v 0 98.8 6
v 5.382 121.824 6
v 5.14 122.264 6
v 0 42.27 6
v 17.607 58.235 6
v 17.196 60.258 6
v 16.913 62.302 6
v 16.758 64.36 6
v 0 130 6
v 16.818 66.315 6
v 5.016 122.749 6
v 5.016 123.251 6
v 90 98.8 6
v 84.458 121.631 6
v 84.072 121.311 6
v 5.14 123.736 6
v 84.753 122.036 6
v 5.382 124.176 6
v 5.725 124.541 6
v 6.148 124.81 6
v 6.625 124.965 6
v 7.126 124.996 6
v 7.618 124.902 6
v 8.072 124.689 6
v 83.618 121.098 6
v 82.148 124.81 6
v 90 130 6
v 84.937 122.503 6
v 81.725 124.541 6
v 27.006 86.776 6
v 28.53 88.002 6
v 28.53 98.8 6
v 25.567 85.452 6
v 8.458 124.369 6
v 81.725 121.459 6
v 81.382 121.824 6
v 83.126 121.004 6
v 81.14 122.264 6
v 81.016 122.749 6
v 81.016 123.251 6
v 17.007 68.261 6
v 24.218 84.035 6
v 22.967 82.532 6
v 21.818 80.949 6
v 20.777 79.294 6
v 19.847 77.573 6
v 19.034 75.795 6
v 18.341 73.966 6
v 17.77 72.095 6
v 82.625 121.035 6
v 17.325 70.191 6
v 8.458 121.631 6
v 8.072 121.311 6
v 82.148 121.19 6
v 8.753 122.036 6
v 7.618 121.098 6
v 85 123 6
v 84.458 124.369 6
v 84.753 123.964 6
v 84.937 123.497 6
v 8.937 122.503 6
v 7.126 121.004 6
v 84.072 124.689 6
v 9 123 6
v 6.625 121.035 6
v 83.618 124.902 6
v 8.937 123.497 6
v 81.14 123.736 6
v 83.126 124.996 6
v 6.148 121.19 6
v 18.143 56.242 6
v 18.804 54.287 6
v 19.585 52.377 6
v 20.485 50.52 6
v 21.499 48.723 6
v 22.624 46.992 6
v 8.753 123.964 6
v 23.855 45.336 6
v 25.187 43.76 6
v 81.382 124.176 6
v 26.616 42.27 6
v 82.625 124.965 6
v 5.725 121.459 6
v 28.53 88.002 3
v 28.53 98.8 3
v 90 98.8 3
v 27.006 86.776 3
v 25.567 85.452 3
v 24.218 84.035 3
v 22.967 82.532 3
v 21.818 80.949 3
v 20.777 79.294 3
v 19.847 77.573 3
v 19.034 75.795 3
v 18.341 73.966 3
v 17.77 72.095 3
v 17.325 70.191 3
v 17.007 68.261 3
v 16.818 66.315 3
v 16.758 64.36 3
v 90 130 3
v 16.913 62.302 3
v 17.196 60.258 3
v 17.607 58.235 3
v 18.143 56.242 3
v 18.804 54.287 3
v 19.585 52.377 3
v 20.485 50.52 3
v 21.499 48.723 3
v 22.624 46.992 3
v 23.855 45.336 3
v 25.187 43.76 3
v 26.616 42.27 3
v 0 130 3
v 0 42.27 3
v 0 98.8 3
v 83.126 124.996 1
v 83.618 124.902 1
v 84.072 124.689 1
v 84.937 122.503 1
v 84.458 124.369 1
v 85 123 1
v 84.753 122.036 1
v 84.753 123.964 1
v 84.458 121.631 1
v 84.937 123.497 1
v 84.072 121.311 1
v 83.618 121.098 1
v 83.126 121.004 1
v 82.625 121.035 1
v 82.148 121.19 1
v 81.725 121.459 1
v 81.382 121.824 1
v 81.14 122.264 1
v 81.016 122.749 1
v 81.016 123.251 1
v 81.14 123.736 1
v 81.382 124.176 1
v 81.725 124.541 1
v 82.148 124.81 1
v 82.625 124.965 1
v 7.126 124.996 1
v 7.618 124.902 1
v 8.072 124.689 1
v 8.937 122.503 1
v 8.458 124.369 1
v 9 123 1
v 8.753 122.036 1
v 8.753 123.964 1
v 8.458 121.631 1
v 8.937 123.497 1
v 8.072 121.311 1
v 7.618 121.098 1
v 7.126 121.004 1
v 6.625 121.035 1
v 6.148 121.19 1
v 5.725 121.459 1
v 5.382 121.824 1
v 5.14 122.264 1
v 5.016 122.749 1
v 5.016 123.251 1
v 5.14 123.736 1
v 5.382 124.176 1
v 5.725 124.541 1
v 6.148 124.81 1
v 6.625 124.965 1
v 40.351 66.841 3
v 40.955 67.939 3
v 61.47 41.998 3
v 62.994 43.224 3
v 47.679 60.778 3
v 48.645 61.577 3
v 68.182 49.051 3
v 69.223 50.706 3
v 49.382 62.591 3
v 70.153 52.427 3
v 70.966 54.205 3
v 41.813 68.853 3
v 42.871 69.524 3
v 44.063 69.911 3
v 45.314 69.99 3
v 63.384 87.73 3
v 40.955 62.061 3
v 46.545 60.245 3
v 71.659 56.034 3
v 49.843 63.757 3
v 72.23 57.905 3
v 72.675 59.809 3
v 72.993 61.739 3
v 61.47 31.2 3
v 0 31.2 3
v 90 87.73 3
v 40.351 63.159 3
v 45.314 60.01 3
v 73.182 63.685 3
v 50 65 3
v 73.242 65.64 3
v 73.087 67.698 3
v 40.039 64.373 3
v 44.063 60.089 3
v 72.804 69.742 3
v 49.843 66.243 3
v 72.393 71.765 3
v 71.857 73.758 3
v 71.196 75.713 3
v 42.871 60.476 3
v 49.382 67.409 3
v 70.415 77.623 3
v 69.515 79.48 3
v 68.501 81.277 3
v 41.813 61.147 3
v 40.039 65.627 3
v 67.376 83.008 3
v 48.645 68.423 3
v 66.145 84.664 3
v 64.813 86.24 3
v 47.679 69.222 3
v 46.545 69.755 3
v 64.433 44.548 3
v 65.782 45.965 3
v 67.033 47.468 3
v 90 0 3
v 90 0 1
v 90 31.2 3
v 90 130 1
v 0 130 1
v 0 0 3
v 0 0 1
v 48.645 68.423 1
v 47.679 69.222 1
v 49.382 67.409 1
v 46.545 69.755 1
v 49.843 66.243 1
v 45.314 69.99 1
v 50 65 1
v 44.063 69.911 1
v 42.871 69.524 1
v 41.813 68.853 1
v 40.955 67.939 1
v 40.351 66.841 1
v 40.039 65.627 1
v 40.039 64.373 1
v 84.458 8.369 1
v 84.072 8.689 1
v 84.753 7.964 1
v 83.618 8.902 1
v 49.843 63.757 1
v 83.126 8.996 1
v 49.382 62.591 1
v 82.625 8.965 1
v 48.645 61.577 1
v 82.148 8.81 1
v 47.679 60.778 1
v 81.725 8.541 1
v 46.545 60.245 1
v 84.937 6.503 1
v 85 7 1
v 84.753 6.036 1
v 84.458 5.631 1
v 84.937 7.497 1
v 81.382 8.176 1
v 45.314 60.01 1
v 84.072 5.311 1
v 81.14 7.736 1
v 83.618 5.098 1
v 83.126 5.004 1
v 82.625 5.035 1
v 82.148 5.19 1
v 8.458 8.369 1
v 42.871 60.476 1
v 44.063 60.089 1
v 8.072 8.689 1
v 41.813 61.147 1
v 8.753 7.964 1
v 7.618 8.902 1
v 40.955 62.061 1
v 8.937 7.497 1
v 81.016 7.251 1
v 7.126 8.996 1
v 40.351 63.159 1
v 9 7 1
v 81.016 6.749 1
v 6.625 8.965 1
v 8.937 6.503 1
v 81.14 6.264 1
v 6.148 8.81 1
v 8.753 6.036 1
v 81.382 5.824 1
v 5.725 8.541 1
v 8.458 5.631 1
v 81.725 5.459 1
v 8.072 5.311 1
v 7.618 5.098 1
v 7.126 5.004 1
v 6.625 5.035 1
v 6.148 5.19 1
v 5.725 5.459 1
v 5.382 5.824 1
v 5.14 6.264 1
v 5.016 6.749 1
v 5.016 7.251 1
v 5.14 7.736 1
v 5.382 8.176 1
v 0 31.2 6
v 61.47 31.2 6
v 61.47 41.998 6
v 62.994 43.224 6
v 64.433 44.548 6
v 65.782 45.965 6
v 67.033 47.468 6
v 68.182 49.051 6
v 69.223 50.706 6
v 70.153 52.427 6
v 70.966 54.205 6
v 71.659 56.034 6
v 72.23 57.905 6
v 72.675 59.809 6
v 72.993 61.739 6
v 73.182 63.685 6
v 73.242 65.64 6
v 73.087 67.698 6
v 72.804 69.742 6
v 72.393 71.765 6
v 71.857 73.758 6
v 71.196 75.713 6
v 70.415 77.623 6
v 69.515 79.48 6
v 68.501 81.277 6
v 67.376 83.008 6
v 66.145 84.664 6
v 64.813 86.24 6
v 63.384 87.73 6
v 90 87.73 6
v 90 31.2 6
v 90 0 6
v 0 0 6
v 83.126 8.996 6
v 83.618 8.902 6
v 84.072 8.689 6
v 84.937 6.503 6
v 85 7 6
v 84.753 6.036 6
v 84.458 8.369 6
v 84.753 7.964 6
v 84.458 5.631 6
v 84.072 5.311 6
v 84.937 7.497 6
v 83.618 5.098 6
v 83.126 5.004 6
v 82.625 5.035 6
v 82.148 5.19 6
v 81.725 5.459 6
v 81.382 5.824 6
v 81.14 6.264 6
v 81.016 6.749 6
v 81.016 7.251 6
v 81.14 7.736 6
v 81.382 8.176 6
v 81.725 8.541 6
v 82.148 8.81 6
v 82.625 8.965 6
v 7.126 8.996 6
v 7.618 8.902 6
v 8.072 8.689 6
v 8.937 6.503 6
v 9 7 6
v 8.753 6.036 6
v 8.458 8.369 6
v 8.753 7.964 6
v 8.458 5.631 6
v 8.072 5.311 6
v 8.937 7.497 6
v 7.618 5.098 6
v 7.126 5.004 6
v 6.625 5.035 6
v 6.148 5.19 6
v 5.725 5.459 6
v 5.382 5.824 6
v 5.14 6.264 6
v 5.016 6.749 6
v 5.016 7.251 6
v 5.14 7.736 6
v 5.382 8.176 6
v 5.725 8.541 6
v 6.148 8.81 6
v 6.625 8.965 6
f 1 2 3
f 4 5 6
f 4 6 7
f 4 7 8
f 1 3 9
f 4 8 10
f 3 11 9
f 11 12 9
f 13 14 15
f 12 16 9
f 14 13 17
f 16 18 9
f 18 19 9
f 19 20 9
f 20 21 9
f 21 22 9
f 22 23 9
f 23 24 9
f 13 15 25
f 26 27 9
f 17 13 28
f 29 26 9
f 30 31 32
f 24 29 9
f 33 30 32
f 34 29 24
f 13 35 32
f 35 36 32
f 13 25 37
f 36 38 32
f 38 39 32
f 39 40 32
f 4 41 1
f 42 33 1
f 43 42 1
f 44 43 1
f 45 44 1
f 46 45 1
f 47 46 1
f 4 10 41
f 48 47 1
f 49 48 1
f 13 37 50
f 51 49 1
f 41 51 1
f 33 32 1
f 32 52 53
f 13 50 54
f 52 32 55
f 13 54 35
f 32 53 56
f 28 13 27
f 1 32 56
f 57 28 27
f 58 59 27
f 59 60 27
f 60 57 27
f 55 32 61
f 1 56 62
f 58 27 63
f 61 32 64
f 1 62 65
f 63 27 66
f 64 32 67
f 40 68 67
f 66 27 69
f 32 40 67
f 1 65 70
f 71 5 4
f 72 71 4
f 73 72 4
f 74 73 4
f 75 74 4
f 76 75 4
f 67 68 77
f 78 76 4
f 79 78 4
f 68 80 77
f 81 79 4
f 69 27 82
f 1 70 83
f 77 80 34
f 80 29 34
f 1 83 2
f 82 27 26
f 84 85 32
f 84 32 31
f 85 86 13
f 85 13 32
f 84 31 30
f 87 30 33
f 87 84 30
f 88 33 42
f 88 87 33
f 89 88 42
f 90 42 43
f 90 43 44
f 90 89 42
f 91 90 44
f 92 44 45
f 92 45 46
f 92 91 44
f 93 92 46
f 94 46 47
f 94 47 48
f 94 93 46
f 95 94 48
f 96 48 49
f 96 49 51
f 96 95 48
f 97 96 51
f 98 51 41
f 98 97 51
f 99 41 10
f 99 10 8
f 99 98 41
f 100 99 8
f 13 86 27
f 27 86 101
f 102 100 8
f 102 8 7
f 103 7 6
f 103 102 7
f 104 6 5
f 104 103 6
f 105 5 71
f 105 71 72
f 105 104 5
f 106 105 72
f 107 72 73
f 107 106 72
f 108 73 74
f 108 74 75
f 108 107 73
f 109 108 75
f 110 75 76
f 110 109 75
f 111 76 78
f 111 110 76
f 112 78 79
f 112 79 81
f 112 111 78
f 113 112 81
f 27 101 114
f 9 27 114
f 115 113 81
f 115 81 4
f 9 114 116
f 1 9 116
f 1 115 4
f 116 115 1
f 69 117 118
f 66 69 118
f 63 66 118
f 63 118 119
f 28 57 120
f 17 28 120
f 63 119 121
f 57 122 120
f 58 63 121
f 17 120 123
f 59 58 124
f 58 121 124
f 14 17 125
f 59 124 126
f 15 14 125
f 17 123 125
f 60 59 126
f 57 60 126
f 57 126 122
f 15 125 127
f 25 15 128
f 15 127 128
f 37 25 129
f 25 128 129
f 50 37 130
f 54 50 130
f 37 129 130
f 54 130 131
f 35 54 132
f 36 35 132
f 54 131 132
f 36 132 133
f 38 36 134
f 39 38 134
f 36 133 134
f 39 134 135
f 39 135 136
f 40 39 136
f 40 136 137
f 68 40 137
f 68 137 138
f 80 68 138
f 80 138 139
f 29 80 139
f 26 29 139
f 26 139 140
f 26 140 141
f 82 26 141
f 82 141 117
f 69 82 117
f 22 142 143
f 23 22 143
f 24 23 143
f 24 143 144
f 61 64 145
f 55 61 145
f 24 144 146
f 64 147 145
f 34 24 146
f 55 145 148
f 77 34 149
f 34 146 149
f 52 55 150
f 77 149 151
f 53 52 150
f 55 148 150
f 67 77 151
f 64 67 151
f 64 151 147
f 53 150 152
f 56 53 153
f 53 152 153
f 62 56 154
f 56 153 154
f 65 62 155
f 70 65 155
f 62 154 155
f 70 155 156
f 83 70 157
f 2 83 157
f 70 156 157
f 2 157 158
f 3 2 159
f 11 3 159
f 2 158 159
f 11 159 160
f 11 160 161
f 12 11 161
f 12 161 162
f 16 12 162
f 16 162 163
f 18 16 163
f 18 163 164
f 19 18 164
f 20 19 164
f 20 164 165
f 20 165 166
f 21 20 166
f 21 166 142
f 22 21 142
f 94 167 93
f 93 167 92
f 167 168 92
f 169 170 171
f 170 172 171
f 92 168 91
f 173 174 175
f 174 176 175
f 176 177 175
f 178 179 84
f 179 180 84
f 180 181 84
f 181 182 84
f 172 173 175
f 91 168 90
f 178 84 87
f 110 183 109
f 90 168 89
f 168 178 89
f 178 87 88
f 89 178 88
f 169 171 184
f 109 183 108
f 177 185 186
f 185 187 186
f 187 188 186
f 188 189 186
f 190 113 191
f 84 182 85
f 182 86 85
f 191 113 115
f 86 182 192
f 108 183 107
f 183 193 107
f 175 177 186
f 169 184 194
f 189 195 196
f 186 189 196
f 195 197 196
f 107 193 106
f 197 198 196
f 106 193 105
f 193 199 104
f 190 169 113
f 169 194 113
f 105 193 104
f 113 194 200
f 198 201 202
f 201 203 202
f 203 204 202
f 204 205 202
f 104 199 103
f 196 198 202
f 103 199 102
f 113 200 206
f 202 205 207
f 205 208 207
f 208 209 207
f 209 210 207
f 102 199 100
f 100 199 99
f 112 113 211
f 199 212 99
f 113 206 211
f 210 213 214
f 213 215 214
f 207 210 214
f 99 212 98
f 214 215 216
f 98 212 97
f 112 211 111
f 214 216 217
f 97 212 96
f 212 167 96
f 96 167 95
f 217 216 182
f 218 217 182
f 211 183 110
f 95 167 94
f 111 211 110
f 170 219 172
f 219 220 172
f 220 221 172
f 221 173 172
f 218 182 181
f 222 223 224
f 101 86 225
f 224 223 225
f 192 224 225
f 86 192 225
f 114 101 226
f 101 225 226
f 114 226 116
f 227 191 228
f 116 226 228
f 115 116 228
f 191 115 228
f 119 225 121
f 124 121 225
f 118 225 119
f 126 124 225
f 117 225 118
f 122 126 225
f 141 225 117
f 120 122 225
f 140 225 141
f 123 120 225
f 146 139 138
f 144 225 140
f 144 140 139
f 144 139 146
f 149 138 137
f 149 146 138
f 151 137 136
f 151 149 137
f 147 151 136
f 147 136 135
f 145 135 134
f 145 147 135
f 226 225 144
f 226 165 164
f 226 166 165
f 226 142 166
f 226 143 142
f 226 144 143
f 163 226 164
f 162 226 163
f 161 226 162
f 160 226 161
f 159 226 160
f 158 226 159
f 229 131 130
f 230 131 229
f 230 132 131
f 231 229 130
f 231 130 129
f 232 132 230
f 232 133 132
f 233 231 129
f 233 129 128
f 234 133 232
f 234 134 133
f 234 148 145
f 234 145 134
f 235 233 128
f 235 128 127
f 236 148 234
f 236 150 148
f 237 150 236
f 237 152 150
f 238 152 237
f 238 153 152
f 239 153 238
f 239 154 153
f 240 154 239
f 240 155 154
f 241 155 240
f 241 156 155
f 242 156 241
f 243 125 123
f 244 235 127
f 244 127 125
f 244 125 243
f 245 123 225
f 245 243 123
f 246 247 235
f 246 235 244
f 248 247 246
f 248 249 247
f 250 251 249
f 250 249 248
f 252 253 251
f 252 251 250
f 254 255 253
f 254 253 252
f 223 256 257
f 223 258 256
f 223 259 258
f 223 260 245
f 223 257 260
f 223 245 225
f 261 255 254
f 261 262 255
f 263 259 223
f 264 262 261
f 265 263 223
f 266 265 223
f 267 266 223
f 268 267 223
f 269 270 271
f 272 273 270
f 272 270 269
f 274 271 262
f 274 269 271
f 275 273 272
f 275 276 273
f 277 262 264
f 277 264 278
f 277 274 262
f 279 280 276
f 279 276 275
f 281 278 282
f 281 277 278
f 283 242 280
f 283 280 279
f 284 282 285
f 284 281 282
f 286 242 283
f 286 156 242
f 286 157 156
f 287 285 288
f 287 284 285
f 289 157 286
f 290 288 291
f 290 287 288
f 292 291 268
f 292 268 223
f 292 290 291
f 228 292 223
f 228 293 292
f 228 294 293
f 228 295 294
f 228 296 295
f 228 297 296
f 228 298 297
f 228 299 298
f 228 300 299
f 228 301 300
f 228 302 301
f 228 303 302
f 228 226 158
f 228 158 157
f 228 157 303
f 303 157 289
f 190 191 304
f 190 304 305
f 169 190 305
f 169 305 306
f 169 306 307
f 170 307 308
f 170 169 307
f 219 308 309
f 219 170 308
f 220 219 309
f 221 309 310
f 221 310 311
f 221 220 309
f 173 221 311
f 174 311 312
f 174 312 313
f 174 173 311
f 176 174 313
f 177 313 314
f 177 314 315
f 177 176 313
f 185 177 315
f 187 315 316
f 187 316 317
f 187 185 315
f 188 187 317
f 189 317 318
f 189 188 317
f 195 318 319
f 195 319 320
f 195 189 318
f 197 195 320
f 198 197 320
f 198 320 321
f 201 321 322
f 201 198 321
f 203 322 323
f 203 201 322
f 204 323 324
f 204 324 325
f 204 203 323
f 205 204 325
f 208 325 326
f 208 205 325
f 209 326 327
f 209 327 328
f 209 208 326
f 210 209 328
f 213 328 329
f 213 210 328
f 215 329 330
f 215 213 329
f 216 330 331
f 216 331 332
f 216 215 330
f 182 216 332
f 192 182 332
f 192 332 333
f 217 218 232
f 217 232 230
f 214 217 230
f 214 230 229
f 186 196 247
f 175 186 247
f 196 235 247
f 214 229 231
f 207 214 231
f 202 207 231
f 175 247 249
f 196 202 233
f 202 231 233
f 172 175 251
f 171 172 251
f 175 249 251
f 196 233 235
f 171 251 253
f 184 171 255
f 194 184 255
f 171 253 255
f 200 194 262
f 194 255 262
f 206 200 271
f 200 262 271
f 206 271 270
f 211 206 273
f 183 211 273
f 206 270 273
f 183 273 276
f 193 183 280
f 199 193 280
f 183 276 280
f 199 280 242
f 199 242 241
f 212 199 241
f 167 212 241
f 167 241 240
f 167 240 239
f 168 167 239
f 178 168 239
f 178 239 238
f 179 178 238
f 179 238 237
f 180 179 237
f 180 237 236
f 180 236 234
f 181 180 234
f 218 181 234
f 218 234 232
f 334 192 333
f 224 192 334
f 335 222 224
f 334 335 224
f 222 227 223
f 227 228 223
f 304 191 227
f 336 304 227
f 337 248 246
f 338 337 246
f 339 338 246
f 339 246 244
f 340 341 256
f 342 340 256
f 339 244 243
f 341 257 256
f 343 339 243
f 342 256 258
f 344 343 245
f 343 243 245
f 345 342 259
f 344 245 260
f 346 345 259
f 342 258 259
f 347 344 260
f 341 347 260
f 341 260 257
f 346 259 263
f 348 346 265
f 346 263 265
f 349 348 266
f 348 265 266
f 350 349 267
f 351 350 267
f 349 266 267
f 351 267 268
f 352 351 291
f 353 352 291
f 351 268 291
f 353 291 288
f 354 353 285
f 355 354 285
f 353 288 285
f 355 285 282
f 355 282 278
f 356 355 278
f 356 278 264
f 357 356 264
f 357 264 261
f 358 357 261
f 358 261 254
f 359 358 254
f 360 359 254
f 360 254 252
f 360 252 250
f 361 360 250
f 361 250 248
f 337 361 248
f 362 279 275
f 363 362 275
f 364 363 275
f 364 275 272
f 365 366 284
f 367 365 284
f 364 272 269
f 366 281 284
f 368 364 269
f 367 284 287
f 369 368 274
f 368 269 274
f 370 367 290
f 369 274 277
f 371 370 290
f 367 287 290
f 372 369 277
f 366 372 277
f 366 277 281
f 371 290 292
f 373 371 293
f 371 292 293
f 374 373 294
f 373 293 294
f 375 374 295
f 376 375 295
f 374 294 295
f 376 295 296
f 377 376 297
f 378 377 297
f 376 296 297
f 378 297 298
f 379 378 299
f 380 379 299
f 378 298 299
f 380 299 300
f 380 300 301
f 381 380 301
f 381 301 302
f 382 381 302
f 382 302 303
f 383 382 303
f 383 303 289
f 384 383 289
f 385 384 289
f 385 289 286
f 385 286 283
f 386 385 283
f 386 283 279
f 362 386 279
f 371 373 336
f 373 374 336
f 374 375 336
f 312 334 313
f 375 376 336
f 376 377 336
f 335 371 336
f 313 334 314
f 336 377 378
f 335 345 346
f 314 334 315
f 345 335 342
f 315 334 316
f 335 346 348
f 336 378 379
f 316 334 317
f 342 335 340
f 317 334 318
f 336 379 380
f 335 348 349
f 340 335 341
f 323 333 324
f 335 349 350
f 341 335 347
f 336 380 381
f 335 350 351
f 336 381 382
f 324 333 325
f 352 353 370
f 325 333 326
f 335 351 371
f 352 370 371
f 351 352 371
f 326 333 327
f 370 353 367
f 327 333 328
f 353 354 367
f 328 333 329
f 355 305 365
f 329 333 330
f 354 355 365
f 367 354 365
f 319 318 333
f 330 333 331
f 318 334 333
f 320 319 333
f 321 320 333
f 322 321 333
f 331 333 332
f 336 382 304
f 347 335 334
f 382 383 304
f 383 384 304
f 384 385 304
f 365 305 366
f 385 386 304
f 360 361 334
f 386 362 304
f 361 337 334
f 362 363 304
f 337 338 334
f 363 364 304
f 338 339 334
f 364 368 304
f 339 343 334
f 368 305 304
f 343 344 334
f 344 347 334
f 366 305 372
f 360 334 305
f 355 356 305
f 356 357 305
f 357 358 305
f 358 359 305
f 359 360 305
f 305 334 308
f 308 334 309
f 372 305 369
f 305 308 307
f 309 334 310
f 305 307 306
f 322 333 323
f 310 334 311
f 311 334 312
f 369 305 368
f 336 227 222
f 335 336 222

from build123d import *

# Parameters (mm, degrees)
SKETCH_W        = 90
SKETCH_H        = 130
PAD_DEPTH       = 3
PAD007_DEPTH    = 3
PAD006_DEPTH    = 3
SKETCH014_R     = 5
SKETCH014_R_2   = 2
POCKET004_DEPTH = 10
SKETCH015_W     = 131.132767
SKETCH015_H     = 1
POCKET005_DEPTH = 100


with BuildPart() as pad007:
    # Sketch → Pad (new body)
    with BuildSketch(Plane.XY):
        with Locations((45, 65)):
            Rectangle(SKETCH_W, SKETCH_H)
    extrude(amount=PAD_DEPTH)

    # Sketch006 → Pad007 (new body)
    with BuildSketch(Plane.XY.offset(3)):
        with BuildLine():
            Line((0, 0), (90, 0))
            Line((90, 0), (90, 31.200001))
            Line((90, 87.7297593266), (90, 31.200001))
            Line((63.384261619, 87.7297593266), (90, 87.7297593266))
            ThreePointArc((73.2419105019, 65.6401585516), (70.414665309, 77.6228043326), (63.384261619, 87.7297593266))
            ThreePointArc((61.470024, 41.9983394519), (70.1525128312, 52.4267750542), (73.2419105019, 65.6401585516))
            Line((61.470024, 31.2), (61.470024, 41.9983394519))
            Line((0, 31.2), (61.470024, 31.2))
            Line((0, 31.2), (0, 0))
        make_face()
    extrude(amount=PAD007_DEPTH)


with BuildPart() as pocket005:
    # Sketch008 → Pad006 (new body)
    with BuildSketch(Plane(origin=(90, 130, 3), x_dir=(-1, 0, 0), z_dir=(0, 0, 1))):
        with BuildLine():
            Line((0, 0), (90, 0))
            Line((90, 0), (90, 31.200001))
            Line((90, 87.7297593266), (90, 31.200001))
            Line((63.384261619, 87.7297593266), (90, 87.7297593266))
            ThreePointArc((73.2419105019, 65.6401585516), (70.414665309, 77.6228043326), (63.384261619, 87.7297593266))
            ThreePointArc((61.470024, 41.9983394519), (70.1525128312, 52.4267750542), (73.2419105019, 65.6401585516))
            Line((61.470024, 31.2), (61.470024, 41.9983394519))
            Line((0, 31.2), (61.470024, 31.2))
            Line((0, 31.2), (0, 0))
        make_face()
    extrude(amount=PAD006_DEPTH)

    # Fusion: union Pad007
    add(pad007.part)

    # Sketch014 → Pocket004 (cut)
    with BuildSketch(Plane(origin=(0, 0, 0), x_dir=(1, 0, 0), z_dir=(0, 0, -1))):
        with Locations((45, -65)):
            Circle(SKETCH014_R)
        with Locations((7, -7)):
            Circle(SKETCH014_R_2)
        with Locations((7, -123)):
            Circle(SKETCH014_R_2)
        with Locations((83, -123)):
            Circle(SKETCH014_R_2)
        with Locations((83, -7)):
            Circle(SKETCH014_R_2)
    extrude(amount=-POCKET004_DEPTH, mode=Mode.SUBTRACT)

    # Sketch015 → Pocket005 (cut)
    with BuildSketch(Plane(origin=(0, 0, 0), x_dir=(0, -1, 0), z_dir=(-1, 0, 0))):
        with Locations((-65.5663835, 0.5)):
            Rectangle(SKETCH015_W, SKETCH015_H)
    extrude(amount=-POCKET005_DEPTH, mode=Mode.SUBTRACT)


solid = pocket005.part
